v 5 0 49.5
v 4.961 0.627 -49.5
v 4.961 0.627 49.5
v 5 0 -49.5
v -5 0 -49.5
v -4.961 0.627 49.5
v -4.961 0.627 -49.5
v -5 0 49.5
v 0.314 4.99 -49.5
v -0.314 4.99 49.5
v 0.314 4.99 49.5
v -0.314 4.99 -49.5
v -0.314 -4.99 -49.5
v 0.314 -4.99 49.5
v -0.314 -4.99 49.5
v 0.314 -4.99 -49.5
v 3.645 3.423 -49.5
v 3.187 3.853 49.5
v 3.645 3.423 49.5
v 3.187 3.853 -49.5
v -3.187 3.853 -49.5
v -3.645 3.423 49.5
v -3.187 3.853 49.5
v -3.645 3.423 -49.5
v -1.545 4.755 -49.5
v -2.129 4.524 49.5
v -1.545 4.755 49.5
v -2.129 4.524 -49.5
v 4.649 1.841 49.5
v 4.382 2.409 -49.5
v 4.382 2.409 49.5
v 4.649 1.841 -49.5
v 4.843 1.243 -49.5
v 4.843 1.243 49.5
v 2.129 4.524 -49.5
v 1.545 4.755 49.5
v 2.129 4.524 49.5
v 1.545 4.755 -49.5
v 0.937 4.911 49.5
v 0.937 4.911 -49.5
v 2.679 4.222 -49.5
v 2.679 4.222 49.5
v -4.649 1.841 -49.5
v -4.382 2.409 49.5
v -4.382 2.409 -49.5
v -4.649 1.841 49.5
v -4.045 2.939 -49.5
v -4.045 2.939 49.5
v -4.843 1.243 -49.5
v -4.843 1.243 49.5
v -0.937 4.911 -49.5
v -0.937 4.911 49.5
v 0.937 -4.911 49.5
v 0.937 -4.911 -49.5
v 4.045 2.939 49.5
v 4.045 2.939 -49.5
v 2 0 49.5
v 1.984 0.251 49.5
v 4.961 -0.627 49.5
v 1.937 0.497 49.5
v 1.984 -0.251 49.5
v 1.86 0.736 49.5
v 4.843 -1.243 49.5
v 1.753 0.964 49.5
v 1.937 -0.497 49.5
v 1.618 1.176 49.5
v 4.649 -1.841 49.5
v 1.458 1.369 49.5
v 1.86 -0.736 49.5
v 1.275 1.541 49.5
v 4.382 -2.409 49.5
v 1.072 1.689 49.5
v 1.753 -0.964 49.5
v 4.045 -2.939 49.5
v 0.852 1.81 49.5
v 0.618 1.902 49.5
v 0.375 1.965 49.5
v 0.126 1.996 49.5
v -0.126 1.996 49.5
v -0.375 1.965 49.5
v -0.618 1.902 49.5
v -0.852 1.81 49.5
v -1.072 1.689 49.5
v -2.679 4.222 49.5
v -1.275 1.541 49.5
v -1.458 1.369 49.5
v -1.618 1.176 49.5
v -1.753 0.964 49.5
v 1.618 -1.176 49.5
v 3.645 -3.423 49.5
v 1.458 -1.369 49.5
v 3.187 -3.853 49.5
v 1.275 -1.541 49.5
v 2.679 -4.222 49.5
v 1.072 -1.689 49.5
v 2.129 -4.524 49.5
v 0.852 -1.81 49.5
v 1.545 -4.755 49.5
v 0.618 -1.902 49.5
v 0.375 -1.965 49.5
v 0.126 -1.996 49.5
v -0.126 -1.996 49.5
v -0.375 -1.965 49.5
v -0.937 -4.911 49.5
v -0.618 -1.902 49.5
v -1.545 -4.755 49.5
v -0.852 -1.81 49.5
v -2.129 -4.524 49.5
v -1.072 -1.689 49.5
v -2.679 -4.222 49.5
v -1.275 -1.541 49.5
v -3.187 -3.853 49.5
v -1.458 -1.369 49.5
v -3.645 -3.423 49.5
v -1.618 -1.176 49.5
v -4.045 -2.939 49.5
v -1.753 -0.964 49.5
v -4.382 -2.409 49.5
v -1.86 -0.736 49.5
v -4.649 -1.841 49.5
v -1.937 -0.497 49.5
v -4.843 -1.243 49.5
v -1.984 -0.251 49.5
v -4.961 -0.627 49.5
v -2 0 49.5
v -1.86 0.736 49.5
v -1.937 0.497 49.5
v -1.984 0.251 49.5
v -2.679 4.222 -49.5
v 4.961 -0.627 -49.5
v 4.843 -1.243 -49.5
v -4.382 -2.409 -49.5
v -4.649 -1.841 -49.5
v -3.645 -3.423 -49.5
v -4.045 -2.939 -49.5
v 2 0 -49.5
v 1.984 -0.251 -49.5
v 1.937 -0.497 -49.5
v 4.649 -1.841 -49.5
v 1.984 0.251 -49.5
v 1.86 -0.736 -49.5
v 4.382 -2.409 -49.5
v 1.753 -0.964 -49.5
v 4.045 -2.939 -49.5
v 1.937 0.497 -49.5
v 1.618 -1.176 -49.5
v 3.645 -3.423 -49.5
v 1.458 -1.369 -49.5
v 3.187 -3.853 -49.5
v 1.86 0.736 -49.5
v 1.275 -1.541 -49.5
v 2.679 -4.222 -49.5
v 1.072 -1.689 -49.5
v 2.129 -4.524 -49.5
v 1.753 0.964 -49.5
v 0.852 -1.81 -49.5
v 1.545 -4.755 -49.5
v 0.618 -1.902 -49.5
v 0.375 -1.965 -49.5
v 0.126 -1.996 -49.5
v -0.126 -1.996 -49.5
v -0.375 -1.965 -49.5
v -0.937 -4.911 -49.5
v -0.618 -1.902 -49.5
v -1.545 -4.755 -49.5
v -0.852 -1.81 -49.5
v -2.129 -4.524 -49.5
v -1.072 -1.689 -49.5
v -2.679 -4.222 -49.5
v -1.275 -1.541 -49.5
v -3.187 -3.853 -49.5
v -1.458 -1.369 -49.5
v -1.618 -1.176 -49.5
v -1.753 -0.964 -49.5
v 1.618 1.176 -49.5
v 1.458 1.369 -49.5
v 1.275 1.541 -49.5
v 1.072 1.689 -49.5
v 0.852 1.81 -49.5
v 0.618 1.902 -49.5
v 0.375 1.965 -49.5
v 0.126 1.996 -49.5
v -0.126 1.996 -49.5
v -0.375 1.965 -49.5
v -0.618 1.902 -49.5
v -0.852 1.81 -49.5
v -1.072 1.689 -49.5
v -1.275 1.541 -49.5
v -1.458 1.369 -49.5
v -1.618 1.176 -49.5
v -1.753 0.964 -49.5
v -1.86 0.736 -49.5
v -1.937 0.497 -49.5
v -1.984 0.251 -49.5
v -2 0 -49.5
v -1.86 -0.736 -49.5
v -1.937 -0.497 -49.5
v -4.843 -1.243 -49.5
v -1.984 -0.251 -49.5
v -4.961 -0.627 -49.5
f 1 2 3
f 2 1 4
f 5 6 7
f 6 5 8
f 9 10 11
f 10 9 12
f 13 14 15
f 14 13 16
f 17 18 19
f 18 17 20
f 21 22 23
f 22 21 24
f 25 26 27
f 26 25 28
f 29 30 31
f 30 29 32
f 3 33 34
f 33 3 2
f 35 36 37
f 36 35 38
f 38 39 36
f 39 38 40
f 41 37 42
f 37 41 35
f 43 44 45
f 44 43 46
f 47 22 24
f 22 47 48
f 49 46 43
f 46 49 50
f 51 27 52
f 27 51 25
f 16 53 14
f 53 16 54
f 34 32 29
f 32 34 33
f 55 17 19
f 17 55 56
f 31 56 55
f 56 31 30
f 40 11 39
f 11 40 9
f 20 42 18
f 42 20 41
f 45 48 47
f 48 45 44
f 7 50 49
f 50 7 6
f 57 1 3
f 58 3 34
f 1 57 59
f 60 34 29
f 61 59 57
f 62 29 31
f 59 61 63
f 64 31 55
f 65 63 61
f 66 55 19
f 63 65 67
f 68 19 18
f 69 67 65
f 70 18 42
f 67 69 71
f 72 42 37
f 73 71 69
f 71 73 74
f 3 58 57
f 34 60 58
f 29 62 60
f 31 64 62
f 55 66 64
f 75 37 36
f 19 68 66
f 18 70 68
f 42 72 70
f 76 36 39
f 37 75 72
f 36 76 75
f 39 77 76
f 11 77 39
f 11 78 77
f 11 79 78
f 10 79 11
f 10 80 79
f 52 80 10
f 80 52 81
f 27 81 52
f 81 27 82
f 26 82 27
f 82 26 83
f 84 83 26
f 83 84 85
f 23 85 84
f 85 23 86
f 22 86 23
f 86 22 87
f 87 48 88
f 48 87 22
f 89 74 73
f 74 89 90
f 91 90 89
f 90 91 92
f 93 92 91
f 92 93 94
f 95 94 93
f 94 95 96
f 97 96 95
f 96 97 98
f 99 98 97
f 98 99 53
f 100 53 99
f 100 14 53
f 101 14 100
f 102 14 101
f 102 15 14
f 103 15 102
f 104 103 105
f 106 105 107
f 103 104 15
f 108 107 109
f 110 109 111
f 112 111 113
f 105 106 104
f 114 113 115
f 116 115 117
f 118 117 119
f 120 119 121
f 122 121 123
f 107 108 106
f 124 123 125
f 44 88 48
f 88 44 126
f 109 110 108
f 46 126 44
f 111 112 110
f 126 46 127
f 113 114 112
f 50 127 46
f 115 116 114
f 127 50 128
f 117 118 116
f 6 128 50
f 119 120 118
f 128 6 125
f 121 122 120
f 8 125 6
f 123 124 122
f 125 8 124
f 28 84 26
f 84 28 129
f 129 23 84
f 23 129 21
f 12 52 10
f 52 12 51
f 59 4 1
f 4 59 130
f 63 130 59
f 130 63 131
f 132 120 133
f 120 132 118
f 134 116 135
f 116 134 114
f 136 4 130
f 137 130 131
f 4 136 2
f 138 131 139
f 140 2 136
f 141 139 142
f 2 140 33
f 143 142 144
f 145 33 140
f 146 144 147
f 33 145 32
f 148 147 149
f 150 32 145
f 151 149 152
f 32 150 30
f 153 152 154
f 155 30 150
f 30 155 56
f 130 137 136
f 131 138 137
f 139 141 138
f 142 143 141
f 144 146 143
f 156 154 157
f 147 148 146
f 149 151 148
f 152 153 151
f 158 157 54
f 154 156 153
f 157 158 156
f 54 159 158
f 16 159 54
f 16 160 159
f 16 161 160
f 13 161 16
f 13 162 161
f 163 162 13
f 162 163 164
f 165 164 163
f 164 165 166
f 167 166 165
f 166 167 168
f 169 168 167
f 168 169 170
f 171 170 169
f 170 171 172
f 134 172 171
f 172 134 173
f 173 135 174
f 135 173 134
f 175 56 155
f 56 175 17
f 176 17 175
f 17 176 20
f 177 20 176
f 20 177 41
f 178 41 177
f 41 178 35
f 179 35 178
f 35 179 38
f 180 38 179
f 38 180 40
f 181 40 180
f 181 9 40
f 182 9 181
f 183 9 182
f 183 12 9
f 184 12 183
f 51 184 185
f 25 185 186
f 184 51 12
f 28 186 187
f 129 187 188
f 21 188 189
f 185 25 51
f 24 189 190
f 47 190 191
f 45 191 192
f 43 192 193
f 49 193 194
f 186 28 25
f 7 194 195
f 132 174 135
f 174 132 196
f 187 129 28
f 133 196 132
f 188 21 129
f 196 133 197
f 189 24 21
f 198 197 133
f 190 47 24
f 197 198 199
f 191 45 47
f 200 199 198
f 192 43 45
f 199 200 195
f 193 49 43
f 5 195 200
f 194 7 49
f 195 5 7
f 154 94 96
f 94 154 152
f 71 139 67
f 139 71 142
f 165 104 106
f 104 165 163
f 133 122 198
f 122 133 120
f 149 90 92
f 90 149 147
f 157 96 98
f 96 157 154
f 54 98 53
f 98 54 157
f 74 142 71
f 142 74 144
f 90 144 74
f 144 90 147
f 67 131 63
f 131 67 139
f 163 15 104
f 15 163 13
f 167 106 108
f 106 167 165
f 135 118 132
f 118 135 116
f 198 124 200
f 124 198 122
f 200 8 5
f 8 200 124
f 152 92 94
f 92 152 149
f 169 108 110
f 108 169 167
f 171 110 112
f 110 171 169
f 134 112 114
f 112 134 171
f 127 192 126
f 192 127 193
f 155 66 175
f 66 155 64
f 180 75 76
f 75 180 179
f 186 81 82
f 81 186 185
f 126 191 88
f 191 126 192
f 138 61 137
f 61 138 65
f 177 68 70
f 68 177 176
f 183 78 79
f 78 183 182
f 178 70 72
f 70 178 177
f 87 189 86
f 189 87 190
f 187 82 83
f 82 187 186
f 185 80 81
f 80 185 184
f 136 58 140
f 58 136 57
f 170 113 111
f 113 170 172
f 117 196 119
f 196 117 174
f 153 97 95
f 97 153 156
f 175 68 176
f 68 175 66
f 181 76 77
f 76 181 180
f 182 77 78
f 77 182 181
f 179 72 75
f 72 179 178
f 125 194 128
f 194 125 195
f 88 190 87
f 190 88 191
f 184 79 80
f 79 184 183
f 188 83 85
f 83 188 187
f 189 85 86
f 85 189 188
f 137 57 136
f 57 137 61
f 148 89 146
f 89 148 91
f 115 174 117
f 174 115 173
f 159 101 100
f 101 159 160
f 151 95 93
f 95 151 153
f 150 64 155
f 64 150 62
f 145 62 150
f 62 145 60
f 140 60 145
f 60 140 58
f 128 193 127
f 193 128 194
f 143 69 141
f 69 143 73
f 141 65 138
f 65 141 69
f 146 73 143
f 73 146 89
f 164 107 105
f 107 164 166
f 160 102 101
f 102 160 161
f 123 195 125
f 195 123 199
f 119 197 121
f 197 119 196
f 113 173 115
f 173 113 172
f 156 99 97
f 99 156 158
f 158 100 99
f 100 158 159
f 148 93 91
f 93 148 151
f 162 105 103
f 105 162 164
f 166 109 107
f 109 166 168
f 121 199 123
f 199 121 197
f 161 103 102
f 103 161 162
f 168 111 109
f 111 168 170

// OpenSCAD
$fn = 50;


difference() {
	union() {
		translate(v = [0, 0, -49.5000000000]) {
			cylinder(h = 99, r = 5.0000000000);
		}
	}
	union() {
		translate(v = [0, 0, -100.0000000000]) {
			cylinder(h = 200, r = 2);
		}
	}
}
